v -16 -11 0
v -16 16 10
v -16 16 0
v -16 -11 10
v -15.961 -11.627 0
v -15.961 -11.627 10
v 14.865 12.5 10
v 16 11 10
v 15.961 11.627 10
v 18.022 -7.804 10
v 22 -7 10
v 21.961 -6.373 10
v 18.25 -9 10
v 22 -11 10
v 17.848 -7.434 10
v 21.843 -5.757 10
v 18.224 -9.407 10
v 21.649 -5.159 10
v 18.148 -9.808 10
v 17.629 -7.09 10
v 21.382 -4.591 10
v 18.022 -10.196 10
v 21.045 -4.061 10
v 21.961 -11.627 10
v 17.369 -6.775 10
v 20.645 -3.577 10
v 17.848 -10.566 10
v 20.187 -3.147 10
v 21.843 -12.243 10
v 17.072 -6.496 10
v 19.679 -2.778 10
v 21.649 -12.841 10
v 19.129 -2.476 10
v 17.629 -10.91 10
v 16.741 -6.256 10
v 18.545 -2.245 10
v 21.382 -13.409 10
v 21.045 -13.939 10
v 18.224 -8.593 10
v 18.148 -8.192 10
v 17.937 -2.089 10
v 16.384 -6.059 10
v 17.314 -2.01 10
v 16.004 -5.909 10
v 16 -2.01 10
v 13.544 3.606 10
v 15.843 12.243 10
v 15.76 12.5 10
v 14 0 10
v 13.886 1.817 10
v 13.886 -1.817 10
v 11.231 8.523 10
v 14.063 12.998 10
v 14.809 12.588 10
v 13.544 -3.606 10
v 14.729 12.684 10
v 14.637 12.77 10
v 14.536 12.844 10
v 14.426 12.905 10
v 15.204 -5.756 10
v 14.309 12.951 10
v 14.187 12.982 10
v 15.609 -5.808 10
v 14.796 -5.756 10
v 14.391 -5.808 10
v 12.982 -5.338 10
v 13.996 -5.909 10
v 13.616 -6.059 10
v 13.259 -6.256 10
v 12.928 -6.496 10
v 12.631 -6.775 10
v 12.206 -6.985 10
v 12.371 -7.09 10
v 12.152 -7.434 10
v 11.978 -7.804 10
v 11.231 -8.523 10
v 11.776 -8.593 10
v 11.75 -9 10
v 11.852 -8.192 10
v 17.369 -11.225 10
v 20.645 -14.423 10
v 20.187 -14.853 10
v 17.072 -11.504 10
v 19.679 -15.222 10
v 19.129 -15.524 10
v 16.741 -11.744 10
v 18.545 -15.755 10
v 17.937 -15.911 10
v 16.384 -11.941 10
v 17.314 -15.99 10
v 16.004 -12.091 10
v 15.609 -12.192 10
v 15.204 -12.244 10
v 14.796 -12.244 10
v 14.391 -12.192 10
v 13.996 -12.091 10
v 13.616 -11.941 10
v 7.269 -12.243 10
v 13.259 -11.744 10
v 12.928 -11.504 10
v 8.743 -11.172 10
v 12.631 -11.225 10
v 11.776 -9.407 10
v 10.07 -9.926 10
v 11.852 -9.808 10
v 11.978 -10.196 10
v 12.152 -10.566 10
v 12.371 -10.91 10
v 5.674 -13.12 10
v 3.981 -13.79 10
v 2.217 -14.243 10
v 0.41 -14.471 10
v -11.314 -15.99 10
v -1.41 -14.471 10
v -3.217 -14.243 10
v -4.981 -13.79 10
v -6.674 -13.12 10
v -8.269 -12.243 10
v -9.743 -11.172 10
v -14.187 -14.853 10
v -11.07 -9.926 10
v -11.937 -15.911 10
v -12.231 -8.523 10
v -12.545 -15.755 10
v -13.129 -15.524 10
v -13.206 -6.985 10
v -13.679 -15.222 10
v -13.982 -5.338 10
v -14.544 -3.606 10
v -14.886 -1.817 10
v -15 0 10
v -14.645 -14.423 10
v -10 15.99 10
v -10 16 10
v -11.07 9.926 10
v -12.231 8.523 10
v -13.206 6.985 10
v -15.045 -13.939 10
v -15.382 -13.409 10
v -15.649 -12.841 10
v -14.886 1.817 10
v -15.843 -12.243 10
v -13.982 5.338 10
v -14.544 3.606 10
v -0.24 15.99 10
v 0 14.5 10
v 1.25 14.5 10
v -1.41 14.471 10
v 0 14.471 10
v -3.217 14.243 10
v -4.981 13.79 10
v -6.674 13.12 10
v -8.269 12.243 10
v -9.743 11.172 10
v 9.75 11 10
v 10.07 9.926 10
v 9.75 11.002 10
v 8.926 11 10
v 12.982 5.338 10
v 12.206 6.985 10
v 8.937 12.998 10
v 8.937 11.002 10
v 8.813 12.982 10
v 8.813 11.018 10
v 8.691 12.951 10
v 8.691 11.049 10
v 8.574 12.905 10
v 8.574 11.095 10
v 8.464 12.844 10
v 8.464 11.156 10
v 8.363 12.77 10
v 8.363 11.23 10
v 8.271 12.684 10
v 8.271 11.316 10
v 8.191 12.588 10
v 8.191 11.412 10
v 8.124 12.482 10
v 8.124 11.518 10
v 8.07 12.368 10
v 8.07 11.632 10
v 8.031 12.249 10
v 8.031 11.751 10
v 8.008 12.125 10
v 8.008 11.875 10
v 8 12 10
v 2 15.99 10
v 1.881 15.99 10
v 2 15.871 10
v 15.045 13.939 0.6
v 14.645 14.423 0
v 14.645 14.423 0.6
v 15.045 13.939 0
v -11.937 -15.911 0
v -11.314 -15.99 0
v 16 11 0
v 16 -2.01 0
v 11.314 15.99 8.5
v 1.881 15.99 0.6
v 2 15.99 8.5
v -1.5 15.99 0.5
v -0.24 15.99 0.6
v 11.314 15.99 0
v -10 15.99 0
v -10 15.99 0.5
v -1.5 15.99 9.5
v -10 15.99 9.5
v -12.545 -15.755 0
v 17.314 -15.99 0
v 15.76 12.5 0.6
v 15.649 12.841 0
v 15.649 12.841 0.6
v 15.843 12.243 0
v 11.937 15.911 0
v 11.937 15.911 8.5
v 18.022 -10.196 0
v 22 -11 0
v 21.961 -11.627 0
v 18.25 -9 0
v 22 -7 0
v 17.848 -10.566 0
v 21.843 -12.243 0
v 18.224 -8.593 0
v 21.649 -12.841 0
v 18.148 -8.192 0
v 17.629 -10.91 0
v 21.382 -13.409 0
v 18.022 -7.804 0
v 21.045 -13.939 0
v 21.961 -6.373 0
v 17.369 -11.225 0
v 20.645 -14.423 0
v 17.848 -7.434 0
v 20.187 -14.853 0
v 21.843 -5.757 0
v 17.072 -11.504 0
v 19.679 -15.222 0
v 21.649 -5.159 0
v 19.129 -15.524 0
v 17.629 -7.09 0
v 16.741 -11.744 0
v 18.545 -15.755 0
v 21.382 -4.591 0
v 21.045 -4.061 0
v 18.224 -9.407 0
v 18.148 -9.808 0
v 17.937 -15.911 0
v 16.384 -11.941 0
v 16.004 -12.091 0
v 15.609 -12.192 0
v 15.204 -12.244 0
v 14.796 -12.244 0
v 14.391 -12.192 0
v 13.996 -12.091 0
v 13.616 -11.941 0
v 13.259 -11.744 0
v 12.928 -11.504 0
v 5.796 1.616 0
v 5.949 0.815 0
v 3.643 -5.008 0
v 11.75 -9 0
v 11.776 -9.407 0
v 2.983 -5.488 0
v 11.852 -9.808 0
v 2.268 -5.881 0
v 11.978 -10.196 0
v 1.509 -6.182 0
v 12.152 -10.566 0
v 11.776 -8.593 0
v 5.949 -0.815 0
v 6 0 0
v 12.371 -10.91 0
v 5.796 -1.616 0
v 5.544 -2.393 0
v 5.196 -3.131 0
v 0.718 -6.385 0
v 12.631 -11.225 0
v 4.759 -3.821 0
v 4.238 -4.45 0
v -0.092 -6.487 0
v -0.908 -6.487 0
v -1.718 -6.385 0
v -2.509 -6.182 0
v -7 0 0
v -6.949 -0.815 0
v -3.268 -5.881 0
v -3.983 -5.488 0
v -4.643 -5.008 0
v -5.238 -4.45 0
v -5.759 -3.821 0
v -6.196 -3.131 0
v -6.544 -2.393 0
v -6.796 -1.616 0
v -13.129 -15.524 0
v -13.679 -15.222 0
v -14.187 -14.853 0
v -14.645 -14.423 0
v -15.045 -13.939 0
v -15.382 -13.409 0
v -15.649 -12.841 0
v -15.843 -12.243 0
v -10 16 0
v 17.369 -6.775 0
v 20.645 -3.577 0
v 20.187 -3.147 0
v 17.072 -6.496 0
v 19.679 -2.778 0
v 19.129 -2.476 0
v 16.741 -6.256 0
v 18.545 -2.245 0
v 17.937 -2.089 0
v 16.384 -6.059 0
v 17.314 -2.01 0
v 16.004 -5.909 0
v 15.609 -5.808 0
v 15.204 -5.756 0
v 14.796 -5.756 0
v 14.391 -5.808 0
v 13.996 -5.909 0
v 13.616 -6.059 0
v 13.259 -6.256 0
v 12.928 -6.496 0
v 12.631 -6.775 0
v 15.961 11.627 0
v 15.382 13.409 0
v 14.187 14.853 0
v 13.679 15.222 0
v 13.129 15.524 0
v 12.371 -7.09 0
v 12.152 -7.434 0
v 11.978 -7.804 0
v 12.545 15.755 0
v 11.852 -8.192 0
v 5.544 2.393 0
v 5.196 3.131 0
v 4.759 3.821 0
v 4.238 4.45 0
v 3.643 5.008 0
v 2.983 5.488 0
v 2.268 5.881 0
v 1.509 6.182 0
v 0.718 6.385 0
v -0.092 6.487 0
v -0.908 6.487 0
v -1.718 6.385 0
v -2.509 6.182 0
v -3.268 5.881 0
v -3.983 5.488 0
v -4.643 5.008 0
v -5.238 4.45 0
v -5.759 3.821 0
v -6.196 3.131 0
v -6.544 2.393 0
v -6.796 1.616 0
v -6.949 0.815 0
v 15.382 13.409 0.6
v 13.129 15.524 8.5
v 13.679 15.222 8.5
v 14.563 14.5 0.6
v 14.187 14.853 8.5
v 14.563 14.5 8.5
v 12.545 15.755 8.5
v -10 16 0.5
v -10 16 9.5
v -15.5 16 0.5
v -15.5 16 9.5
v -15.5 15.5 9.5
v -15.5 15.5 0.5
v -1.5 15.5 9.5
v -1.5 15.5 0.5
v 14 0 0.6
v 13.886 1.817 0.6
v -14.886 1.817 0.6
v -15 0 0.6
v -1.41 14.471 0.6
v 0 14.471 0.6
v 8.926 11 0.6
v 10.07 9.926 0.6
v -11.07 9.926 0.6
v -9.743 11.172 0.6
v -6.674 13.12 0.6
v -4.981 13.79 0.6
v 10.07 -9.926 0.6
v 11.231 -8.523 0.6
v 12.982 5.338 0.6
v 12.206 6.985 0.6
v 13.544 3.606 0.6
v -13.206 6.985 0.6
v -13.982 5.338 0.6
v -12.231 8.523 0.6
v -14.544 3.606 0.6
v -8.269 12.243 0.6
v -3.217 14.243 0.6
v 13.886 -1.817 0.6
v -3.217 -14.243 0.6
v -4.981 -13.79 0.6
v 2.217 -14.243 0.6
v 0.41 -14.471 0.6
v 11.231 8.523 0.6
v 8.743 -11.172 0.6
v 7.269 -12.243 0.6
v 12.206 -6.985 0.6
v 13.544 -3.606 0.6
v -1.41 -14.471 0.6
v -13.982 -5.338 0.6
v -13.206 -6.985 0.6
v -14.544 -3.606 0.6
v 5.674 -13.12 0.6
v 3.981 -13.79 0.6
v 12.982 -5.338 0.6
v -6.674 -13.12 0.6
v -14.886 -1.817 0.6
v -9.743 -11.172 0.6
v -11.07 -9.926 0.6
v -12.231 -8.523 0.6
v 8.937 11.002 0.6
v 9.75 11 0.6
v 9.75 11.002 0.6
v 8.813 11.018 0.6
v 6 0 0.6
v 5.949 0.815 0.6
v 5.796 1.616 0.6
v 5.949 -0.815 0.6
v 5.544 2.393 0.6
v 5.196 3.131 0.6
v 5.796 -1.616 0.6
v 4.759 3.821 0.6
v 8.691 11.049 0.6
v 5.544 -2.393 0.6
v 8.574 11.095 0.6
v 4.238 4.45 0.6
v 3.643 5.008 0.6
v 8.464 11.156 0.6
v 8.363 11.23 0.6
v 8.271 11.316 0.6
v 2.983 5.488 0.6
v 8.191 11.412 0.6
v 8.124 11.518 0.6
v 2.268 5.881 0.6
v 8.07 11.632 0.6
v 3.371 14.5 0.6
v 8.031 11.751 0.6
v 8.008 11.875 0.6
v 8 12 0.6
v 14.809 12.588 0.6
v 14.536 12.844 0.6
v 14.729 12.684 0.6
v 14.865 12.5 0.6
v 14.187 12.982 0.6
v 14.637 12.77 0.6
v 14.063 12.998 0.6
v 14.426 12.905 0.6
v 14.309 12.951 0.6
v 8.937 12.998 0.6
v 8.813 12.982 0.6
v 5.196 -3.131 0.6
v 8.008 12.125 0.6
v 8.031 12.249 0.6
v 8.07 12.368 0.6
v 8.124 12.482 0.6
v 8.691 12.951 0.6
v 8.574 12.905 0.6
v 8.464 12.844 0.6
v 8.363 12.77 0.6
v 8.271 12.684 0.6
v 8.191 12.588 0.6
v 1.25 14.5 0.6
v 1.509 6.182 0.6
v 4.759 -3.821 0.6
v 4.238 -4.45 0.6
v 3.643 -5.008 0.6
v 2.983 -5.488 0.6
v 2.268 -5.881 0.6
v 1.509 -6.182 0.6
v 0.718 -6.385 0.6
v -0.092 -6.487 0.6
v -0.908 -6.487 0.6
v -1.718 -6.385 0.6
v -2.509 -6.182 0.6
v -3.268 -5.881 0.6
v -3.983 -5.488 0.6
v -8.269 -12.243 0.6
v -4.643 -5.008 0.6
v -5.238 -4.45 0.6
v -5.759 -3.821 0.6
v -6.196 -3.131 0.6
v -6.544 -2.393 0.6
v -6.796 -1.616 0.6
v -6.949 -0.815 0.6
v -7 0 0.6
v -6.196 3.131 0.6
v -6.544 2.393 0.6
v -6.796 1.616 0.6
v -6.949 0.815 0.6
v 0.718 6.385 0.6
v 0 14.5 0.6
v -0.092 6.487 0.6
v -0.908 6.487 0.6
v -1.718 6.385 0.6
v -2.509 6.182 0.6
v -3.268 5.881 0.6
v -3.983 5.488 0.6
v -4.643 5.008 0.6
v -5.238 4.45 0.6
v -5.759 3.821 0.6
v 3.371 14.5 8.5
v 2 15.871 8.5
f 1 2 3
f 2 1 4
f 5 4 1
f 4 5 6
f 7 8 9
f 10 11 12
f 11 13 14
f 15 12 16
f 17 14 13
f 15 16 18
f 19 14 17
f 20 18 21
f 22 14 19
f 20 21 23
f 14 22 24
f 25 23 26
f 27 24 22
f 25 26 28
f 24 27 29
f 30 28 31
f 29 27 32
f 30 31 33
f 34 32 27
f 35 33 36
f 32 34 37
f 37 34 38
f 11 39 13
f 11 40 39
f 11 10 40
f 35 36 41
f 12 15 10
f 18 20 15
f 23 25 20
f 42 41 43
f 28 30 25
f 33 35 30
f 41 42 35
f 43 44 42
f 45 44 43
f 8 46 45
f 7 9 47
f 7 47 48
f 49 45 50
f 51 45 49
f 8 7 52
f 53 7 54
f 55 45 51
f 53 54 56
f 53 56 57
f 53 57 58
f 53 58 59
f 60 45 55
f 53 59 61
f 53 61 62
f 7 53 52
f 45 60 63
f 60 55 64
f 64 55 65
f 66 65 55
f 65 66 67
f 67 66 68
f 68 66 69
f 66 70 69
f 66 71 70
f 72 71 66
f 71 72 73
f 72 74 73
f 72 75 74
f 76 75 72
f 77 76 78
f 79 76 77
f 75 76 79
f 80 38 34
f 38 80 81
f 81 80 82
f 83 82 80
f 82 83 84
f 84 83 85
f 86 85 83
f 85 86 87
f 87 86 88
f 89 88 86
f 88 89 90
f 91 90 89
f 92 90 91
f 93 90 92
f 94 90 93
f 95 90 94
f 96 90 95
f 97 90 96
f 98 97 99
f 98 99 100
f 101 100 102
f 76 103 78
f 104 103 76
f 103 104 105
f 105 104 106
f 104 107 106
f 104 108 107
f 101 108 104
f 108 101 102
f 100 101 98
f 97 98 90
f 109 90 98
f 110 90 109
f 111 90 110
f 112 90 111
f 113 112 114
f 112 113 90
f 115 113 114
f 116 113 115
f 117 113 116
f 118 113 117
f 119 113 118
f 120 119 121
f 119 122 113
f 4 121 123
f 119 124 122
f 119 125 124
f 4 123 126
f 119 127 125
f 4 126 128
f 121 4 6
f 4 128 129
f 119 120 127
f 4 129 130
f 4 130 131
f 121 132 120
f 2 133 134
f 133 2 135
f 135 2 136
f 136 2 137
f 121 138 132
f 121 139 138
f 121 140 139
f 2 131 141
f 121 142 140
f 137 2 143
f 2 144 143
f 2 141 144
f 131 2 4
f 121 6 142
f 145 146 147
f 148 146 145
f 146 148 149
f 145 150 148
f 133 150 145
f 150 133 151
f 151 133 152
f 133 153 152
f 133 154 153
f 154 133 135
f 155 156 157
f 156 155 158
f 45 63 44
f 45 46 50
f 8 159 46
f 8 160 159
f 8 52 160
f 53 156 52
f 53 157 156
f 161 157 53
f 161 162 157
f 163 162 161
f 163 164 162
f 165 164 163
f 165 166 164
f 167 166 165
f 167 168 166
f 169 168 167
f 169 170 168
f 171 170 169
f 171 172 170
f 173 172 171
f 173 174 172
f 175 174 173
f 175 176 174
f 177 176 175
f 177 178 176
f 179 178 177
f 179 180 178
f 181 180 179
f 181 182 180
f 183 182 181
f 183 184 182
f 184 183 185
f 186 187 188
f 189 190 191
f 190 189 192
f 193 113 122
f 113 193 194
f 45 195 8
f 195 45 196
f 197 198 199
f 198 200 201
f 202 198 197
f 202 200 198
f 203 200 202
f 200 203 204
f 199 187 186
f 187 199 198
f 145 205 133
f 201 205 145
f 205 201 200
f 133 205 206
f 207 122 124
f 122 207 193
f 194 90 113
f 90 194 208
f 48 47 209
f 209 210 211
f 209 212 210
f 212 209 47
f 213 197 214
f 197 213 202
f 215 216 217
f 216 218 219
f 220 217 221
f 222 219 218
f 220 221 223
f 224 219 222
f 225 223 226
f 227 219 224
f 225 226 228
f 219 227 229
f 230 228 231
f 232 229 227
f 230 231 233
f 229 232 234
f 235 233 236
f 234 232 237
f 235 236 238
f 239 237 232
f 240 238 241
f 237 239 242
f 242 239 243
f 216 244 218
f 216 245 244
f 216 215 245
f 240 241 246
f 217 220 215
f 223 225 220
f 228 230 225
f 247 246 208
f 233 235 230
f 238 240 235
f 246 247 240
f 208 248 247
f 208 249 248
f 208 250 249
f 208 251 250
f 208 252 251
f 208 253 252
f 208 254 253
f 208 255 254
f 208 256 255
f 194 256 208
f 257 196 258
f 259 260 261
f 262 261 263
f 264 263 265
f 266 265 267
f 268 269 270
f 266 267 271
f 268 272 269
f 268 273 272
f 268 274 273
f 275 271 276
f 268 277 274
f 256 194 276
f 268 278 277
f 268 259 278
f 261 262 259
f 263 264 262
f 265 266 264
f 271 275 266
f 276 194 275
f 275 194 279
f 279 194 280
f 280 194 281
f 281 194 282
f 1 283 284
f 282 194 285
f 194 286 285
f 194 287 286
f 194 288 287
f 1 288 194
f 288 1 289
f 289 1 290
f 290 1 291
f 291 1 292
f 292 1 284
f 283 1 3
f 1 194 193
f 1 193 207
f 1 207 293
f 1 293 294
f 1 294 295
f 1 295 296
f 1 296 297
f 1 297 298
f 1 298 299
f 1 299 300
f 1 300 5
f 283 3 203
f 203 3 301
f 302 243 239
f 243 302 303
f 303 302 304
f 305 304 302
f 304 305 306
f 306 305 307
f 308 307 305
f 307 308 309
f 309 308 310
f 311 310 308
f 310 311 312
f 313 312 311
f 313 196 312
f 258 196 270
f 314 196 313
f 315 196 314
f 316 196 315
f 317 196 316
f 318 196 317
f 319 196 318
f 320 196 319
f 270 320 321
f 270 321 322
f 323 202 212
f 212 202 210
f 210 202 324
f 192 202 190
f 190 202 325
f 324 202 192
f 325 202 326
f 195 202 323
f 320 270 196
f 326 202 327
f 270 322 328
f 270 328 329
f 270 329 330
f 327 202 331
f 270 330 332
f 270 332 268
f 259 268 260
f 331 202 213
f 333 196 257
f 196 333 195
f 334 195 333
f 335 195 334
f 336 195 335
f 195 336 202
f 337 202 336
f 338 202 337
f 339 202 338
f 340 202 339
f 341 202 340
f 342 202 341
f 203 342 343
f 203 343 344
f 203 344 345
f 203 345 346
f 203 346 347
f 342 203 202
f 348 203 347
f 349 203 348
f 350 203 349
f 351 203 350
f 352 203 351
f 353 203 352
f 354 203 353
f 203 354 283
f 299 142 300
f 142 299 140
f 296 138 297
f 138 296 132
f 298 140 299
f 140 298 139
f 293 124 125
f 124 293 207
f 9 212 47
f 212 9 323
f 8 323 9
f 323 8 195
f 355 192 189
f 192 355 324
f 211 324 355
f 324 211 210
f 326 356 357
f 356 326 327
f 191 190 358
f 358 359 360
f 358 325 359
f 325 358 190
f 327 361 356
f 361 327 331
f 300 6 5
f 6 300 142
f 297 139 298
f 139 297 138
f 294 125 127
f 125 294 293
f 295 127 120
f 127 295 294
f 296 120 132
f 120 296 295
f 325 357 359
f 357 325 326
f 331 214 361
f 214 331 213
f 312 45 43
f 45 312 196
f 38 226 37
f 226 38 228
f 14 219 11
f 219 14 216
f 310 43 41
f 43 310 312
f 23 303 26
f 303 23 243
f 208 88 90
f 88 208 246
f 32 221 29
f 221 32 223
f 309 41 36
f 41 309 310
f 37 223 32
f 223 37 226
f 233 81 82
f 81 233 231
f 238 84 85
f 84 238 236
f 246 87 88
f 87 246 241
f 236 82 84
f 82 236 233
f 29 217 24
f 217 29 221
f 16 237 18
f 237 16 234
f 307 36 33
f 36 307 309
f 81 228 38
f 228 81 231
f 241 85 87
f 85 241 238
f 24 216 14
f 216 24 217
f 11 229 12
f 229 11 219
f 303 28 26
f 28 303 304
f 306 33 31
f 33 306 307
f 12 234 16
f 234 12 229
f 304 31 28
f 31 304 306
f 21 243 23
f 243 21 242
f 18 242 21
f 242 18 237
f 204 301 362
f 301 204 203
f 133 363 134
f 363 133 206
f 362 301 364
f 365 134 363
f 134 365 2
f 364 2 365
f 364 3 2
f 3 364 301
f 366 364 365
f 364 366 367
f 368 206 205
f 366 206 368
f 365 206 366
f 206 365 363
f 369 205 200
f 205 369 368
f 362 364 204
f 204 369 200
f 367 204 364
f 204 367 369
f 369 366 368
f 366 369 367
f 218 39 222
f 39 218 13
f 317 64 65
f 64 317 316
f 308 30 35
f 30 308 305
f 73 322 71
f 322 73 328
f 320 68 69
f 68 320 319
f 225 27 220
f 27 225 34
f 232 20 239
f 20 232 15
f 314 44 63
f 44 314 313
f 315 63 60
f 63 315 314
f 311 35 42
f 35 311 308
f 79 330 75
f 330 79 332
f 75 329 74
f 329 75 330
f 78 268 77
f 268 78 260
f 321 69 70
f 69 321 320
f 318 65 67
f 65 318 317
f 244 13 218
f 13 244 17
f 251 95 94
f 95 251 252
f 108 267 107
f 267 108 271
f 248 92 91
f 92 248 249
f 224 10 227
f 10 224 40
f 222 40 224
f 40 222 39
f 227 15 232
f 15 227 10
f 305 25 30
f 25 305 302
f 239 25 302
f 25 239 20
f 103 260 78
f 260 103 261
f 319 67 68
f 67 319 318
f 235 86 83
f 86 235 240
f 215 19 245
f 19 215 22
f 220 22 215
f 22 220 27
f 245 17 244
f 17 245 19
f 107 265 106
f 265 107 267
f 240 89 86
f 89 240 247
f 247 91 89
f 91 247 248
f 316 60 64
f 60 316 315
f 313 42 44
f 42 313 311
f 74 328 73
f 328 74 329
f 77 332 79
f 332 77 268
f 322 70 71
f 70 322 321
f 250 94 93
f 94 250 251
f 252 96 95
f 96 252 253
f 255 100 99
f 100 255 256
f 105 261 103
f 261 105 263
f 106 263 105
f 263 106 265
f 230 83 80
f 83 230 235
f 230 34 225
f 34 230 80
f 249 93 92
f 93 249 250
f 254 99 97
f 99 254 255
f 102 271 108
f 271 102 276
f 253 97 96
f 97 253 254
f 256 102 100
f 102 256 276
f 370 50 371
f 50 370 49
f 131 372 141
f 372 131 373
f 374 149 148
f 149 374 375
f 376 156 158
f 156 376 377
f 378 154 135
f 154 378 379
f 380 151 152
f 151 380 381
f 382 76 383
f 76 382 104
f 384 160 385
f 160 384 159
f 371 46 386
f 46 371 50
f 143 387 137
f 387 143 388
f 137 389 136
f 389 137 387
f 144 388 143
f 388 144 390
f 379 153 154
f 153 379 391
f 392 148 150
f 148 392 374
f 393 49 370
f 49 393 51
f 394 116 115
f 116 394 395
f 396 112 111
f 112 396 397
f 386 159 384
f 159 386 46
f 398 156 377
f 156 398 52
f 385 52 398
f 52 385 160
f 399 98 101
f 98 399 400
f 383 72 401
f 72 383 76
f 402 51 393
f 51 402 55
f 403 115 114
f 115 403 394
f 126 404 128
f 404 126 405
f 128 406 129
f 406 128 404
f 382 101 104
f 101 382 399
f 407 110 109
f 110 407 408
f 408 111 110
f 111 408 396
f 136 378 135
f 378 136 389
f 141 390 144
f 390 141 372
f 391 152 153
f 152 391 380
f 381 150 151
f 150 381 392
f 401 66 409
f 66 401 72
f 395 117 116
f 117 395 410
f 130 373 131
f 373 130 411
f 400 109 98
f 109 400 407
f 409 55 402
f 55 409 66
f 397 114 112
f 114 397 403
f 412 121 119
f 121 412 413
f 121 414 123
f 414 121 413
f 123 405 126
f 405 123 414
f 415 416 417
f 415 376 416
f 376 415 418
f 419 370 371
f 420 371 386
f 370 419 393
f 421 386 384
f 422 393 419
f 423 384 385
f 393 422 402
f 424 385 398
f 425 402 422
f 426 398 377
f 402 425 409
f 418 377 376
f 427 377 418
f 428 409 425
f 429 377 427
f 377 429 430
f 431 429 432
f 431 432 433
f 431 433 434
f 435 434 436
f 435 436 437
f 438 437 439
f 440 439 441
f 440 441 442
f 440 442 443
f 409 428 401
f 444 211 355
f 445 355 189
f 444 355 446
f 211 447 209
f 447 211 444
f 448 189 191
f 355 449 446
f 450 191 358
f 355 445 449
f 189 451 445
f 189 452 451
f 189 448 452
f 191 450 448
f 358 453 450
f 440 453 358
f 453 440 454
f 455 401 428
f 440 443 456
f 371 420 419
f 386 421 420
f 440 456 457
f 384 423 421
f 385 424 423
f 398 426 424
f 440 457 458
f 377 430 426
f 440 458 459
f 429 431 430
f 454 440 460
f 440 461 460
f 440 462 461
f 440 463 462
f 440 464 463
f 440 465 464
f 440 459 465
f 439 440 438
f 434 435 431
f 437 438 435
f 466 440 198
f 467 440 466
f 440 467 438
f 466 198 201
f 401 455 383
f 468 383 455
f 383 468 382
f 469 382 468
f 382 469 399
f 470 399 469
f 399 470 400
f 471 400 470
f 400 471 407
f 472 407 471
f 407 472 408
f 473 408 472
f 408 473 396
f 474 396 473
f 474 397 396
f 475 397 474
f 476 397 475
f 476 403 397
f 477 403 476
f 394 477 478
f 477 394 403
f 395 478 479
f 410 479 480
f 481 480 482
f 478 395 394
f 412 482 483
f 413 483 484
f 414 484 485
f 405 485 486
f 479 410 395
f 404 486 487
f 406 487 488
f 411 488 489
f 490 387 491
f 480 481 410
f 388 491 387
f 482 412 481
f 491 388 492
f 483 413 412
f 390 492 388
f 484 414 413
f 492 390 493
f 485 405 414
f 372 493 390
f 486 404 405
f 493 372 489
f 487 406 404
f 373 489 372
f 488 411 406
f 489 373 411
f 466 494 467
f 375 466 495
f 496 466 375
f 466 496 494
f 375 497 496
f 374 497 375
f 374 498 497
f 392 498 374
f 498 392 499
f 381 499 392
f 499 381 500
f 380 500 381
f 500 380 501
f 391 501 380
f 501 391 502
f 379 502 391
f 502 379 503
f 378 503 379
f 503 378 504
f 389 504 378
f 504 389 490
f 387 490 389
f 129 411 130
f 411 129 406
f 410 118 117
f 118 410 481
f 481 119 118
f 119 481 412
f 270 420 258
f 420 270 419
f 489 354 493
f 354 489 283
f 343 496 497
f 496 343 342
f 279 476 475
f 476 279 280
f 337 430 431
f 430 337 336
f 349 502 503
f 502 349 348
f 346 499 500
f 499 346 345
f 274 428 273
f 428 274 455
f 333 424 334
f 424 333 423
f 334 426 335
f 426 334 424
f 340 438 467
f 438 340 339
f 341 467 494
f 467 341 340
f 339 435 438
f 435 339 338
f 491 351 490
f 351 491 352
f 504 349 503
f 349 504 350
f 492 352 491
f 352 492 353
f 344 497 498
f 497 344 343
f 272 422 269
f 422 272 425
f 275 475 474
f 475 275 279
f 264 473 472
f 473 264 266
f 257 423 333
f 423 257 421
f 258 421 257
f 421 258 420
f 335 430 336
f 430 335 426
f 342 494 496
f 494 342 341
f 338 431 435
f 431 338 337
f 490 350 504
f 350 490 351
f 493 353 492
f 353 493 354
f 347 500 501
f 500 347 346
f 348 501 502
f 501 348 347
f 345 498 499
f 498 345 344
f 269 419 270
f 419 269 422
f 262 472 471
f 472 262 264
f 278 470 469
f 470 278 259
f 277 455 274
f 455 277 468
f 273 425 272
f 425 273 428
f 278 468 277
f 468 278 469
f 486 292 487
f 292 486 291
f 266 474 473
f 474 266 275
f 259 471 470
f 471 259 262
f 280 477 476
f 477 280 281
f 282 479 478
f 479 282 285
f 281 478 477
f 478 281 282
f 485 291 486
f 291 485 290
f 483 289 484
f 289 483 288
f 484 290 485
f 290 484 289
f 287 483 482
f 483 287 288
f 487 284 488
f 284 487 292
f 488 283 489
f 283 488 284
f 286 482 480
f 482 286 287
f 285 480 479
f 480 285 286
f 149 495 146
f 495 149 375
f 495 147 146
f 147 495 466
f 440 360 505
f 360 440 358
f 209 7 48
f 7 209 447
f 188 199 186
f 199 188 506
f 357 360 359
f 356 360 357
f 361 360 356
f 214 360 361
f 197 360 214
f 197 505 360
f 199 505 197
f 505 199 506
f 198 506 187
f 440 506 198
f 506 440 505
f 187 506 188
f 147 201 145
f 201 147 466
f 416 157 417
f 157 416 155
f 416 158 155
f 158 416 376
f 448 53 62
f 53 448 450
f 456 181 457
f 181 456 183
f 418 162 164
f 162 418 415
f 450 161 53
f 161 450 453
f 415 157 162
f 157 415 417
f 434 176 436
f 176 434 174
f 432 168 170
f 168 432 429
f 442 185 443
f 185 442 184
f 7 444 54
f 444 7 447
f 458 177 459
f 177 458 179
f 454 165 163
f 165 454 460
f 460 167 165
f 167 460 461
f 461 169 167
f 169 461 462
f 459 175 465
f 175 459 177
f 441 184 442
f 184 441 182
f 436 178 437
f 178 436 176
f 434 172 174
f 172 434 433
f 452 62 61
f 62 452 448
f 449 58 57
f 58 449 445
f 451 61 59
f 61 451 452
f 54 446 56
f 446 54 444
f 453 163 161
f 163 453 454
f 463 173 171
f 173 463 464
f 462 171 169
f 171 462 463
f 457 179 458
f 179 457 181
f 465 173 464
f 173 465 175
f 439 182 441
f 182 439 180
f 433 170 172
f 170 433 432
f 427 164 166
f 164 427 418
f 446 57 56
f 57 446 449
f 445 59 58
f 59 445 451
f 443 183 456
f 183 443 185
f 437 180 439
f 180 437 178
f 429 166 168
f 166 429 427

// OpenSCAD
$fn = 50;


union() {
	difference() {
		union() {
			translate(v = [0, 0, 0]) {
				rotate(a = [0, 0, 0]) {
					hull() {
						translate(v = [-11.0000000000, 11.0000000000, 0]) {
							rotate(a = [0, 0, 0]) {
								translate(v = [0, 0, 0]) {
									rotate(a = [0, 0, 0]) {
										cylinder(h = 10, r = 5);
									}
								}
							}
						}
						translate(v = [11.0000000000, 11.0000000000, 0]) {
							rotate(a = [0, 0, 0]) {
								translate(v = [0, 0, 0]) {
									rotate(a = [0, 0, 0]) {
										cylinder(h = 10, r = 5);
									}
								}
							}
						}
						translate(v = [-11.0000000000, -11.0000000000, 0]) {
							rotate(a = [0, 0, 0]) {
								translate(v = [0, 0, 0]) {
									rotate(a = [0, 0, 0]) {
										cylinder(h = 10, r = 5);
									}
								}
							}
						}
						translate(v = [11.0000000000, -11.0000000000, 0]) {
							rotate(a = [0, 0, 0]) {
								translate(v = [0, 0, 0]) {
									rotate(a = [0, 0, 0]) {
										cylinder(h = 10, r = 5);
									}
								}
							}
						}
					}
				}
			}
			translate(v = [7.5000000000, -9.0000000000, 0]) {
				rotate(a = [0, 0, 0]) {
					hull() {
						translate(v = [-9.5000000000, 2.0000000000, 0]) {
							rotate(a = [0, 0, 0]) {
								translate(v = [0, 0, 0]) {
									rotate(a = [0, 0, 0]) {
										cylinder(h = 10, r = 5);
									}
								}
							}
						}
						translate(v = [9.5000000000, 2.0000000000, 0]) {
							rotate(a = [0, 0, 0]) {
								translate(v = [0, 0, 0]) {
									rotate(a = [0, 0, 0]) {
										cylinder(h = 10, r = 5);
									}
								}
							}
						}
						translate(v = [-9.5000000000, -2.0000000000, 0]) {
							rotate(a = [0, 0, 0]) {
								translate(v = [0, 0, 0]) {
									rotate(a = [0, 0, 0]) {
										cylinder(h = 10, r = 5);
									}
								}
							}
						}
						translate(v = [9.5000000000, -2.0000000000, 0]) {
							rotate(a = [0, 0, 0]) {
								translate(v = [0, 0, 0]) {
									rotate(a = [0, 0, 0]) {
										cylinder(h = 10, r = 5);
									}
								}
							}
						}
					}
				}
			}
			translate(v = [-16.0000000000, 10.0000000000, 0]) {
				rotate(a = [0, 0, 0]) {
					cube(size = [6, 6, 10]);
				}
			}
		}
		union() {
			translate(v = [-15.5000000000, 15.5000000000, 0.5000000000]) {
				rotate(a = [0, 0, 0]) {
					cube(size = [14, 0.5000000000, 9.0000000000]);
				}
			}
			translate(v = [15.0000000000, -9.0000000000, -125.0000000000]) {
				rotate(a = [0, 0, 0]) {
					cylinder(h = 250, r = 3.2500000000);
				}
			}
			translate(v = [-0.5000000000, 0.0000000000, 0.6000000000]) {
				rotate(a = [0, 0, 0]) {
					cylinder(h = 12.4000000000, r = 14.5000000000);
				}
			}
			translate(v = [-0.5000000000, 0.0000000000, -5.0000000000]) {
				rotate(a = [0, 0, 0]) {
					cylinder(h = 10, r = 6.5000000000);
				}
			}
			translate(v = [0.0000000000, 12.5000000000, 0.6000000000]) {
				rotate(a = [0, 0, 0]) {
					cube(size = [16.0000000000, 2, 12.4000000000]);
				}
			}
			translate(v = [2.0000000000, 12.5000000000, 8.5000000000]) {
				rotate(a = [0, 0, 0]) {
					cube(size = [14.0000000000, 5, 1.5000000000]);
				}
			}
			translate(v = [-3.0000000000, 18.7500000000, 0.6000000000]) {
				rotate(a = [0, 0, -45]) {
					cube(size = [10, 1.5000000000, 12.4000000000]);
				}
			}
			translate(v = [2.2500000000, 11.0000000000, 0.6000000000]) {
				rotate(a = [0, 0, 0]) {
					cube(size = [7.5000000000, 2, 9.4000000000]);
				}
			}
		}
	}
	union() {
		translate(v = [11.5000000000, 12, 0]) {
			rotate(a = [0, 0, 0]) {
				hull() {
					translate(v = [2.5000000000, 0, 0]) {
						rotate(a = [0, 0, 0]) {
							translate(v = [0, 0, 0]) {
								rotate(a = [0, 0, 0]) {
									cylinder(h = 10, r = 1.0000000000);
								}
							}
						}
					}
					translate(v = [-2.5000000000, 0, 0]) {
						rotate(a = [0, 0, 0]) {
							translate(v = [0, 0, 0]) {
								rotate(a = [0, 0, 0]) {
									cylinder(h = 10, r = 1.0000000000);
								}
							}
						}
					}
				}
			}
		}
	}
}
